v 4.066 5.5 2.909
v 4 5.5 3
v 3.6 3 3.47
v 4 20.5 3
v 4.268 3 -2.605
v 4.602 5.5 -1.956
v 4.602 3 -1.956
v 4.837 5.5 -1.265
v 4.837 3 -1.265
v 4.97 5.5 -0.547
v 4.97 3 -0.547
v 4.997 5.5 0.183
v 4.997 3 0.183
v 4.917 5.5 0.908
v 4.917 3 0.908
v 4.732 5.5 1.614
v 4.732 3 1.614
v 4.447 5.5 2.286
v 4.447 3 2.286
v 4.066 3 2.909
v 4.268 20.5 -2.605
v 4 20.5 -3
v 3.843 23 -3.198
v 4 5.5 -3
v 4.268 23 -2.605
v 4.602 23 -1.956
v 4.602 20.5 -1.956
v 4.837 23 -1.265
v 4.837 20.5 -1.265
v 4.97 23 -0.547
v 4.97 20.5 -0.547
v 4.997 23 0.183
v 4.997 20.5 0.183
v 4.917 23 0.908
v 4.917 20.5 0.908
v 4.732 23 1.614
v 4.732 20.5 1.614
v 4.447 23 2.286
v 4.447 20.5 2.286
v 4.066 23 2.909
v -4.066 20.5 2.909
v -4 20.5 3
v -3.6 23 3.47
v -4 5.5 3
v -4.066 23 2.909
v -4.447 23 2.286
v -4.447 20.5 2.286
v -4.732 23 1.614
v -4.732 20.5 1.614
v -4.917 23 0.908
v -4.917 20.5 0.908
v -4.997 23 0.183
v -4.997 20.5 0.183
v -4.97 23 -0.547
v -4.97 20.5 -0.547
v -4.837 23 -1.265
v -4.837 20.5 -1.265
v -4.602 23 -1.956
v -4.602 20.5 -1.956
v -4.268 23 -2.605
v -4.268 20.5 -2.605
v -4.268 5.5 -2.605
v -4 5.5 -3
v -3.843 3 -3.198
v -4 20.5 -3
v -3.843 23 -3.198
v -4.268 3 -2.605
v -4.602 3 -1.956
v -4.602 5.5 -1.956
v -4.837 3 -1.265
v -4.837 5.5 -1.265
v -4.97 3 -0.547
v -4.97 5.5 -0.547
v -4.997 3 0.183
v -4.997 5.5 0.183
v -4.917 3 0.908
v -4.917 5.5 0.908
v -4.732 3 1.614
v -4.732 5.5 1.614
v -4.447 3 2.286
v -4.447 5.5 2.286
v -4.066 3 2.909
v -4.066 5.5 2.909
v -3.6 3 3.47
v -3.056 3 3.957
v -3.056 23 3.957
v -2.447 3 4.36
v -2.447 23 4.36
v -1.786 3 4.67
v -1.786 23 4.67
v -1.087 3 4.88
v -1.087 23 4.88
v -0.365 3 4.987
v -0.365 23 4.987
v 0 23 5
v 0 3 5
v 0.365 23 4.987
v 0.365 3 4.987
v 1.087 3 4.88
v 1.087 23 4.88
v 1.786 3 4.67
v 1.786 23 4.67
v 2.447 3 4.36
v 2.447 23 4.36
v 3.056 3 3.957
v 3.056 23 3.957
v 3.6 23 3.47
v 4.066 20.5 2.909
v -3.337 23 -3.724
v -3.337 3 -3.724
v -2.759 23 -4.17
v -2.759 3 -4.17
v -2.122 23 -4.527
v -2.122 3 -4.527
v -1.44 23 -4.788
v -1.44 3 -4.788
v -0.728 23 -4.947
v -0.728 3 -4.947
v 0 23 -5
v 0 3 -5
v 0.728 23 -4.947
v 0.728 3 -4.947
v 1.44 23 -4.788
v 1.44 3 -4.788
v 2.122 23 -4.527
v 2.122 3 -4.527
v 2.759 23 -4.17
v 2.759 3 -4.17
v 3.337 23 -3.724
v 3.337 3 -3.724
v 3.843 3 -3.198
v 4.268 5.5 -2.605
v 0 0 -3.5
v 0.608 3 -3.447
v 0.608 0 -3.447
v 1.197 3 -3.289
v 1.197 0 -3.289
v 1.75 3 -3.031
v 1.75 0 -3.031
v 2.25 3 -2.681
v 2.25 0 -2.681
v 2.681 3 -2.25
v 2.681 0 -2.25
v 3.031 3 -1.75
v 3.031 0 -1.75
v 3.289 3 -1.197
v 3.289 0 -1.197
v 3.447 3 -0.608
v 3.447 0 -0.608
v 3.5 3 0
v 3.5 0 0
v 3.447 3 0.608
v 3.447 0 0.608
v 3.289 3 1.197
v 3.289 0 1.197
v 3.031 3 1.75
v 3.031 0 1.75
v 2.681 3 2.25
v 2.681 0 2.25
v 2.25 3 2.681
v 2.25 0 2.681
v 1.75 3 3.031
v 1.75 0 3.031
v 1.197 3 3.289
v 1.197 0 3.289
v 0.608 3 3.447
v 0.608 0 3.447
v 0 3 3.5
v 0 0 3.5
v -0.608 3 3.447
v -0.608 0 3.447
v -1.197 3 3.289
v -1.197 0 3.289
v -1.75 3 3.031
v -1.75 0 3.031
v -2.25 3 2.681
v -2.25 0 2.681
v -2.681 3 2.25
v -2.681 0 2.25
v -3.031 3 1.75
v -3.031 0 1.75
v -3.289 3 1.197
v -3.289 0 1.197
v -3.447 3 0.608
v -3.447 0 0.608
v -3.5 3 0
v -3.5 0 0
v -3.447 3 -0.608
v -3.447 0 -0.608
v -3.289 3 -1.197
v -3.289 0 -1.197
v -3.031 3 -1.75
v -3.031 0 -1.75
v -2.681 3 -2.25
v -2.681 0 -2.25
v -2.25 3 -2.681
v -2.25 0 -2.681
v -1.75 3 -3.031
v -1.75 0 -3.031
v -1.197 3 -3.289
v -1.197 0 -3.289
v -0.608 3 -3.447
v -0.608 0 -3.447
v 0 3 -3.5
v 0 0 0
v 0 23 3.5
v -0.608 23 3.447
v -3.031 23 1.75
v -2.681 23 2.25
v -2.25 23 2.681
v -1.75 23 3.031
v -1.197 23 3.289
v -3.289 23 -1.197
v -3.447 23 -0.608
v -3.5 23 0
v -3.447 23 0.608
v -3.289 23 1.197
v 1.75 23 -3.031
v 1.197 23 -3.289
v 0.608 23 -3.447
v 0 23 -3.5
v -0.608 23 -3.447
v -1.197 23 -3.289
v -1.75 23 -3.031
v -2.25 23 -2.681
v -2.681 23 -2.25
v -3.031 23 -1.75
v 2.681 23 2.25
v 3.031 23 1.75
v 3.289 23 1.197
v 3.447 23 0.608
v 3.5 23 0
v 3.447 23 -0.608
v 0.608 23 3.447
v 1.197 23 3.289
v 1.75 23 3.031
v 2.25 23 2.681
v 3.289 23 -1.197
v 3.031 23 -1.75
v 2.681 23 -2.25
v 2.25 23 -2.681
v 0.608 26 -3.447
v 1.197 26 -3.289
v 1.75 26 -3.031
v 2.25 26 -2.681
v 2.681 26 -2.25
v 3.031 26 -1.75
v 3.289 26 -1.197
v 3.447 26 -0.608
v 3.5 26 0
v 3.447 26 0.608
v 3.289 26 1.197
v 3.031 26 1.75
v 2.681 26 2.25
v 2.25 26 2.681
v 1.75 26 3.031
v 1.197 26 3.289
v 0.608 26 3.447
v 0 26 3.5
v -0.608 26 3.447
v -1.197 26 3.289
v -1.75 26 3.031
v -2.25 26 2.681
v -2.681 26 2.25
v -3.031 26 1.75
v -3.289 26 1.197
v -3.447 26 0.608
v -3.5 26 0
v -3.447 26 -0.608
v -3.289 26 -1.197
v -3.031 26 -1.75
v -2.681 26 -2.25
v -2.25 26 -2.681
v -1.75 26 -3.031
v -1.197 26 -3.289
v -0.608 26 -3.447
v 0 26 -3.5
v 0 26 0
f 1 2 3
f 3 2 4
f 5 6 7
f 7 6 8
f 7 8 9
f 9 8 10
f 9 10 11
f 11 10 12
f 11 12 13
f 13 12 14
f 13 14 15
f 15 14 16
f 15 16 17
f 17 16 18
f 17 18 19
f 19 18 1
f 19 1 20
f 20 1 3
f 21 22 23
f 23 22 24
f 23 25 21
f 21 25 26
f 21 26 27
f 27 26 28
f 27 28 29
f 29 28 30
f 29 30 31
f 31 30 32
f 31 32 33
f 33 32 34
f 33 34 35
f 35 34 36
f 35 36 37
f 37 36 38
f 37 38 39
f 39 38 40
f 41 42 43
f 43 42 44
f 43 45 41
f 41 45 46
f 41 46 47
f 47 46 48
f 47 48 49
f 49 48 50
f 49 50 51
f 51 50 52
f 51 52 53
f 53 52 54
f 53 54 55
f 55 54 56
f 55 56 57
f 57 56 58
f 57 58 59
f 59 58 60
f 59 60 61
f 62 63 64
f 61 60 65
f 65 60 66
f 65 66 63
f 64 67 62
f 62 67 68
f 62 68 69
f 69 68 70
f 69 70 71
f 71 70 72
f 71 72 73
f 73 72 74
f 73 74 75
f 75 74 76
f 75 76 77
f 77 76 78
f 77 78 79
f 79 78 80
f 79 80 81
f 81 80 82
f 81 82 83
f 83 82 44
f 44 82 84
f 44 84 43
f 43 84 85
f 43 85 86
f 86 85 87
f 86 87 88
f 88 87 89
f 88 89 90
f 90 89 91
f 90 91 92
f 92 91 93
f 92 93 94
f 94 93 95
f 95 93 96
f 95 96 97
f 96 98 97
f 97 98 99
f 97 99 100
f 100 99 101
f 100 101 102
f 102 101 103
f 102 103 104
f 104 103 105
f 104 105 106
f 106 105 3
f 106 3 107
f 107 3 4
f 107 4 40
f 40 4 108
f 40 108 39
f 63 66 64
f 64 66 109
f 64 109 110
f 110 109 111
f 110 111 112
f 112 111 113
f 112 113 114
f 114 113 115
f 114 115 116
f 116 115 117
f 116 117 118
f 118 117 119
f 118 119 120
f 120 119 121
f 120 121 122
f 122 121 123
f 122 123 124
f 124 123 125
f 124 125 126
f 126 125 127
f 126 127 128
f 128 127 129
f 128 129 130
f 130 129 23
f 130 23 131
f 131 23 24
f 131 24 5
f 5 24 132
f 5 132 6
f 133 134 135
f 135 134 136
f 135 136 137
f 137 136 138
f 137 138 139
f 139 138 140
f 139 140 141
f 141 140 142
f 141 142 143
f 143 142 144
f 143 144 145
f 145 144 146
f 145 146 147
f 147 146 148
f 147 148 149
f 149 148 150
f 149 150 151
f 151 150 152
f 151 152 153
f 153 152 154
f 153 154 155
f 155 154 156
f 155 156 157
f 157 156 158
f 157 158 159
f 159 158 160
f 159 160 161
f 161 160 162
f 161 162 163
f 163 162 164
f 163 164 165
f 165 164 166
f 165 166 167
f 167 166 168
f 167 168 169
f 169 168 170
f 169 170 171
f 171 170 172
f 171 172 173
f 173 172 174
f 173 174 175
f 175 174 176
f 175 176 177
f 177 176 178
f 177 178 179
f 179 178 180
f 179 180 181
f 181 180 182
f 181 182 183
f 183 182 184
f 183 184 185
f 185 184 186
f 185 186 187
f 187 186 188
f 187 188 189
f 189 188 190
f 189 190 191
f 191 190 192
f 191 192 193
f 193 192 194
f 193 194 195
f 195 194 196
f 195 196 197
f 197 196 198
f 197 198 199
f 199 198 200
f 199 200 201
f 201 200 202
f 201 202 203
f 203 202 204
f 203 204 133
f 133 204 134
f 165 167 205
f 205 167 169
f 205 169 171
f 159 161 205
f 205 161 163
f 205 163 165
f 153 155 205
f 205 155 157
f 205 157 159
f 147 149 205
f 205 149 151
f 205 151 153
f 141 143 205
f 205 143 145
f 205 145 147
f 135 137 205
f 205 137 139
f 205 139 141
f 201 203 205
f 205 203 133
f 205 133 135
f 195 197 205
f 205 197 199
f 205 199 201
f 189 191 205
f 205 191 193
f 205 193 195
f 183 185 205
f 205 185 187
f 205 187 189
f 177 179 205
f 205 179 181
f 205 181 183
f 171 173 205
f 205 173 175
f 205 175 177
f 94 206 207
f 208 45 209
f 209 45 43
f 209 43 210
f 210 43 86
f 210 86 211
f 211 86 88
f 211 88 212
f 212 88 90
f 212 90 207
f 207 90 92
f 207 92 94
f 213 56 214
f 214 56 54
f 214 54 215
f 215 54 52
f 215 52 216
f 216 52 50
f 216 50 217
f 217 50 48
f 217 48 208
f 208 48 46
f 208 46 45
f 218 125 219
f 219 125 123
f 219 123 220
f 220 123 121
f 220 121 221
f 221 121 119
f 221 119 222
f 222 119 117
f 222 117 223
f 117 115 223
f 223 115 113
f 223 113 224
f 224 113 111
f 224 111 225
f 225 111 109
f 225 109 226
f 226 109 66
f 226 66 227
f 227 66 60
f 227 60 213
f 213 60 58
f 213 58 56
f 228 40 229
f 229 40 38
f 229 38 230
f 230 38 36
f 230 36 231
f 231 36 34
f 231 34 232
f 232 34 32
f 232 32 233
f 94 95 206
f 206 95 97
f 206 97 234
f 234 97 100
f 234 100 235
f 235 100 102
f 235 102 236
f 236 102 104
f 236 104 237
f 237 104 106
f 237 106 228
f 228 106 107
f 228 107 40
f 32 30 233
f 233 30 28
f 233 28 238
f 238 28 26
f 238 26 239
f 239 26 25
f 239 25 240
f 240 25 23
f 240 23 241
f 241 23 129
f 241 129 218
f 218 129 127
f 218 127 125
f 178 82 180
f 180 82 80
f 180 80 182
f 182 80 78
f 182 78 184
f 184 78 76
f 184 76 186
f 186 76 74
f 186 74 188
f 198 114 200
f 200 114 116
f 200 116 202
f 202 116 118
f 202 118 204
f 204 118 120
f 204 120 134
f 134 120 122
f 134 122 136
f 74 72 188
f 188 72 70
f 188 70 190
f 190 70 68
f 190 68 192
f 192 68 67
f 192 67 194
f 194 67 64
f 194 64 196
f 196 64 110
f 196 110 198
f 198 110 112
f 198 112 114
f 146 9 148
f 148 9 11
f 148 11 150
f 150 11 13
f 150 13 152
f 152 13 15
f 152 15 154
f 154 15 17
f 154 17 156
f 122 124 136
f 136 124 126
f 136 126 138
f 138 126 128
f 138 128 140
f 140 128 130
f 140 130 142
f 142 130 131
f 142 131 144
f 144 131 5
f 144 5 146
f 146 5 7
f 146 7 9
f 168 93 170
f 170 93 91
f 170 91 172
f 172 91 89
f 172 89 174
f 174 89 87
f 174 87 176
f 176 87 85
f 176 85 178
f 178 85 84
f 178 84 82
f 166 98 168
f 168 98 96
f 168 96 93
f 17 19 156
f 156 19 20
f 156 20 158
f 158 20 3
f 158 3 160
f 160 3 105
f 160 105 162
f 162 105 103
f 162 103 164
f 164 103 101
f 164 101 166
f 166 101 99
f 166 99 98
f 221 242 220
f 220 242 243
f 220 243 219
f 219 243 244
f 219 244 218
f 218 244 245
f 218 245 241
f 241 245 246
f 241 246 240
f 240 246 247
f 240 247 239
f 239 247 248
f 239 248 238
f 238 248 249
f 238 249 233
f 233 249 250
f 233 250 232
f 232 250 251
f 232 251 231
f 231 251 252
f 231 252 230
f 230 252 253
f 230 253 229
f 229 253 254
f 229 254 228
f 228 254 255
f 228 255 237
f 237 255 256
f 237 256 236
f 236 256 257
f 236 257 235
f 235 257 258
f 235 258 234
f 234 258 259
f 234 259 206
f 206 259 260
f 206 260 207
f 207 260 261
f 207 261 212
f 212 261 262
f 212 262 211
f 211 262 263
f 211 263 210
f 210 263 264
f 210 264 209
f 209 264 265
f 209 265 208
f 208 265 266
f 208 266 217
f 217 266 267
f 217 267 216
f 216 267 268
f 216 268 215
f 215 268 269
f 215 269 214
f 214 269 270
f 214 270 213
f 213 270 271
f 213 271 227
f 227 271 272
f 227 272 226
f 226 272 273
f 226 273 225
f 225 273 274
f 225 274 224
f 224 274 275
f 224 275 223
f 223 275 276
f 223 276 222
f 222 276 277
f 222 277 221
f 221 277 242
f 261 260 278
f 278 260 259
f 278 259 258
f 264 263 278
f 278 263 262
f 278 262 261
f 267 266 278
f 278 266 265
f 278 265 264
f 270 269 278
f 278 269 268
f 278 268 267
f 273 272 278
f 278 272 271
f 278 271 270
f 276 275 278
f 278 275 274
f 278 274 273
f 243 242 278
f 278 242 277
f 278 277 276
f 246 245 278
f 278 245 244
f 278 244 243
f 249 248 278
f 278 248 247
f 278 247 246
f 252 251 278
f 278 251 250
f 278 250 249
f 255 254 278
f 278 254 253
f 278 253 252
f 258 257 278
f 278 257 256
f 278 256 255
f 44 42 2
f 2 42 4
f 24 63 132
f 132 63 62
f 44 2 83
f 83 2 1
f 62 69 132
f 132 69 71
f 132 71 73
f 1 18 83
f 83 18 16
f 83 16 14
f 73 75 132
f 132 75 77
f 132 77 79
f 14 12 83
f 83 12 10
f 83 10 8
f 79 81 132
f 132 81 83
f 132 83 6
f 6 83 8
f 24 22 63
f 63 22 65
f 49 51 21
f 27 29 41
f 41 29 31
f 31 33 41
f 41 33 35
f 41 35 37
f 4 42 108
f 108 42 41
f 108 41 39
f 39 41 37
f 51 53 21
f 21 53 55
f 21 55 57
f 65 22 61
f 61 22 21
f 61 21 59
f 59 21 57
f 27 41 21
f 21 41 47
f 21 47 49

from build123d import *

# Parameters (mm, degrees)
CROQUIS1_R                 = 3.5
SALIENTE_EXTRUIR1_DEPTH    = 3
CROQUIS2_R                 = 5
SALIENTE_EXTRUIR2_DEPTH    = 20
CROQUIS3_R                 = 3.5
SALIENTE_EXTRUIR3_DEPTH    = 3
CORTAR_EXTRUIR1_DEPTH      = 10
CORTAR_EXTRUIR1_DEPTH_BACK = 11
CROQUIS4_W                 = 6
CROQUIS4_H                 = 15


with BuildPart() as part:
    # Croquis1 → Saliente-Extruir1 (new body)
    with BuildSketch(Plane(origin=(0, 0, 0), x_dir=(1, 0, 0), z_dir=(0, 1, 0))):
        with Locations(Location((0, 0, 0), (0, 0, 270))):
            Circle(CROQUIS1_R)
    extrude(amount=SALIENTE_EXTRUIR1_DEPTH)

    # Croquis2 → Saliente-Extruir2 (add)
    with BuildSketch(Plane(origin=(0, 3, 0), x_dir=(1, 0, 0), z_dir=(0, 1, 0))):
        with Locations(Location((0, 0, 0), (0, 0, 270))):
            Circle(CROQUIS2_R)
    extrude(amount=SALIENTE_EXTRUIR2_DEPTH)

    # Croquis3 → Saliente-Extruir3 (add)
    with BuildSketch(Plane(origin=(0, 23, 0), x_dir=(1, 0, 0), z_dir=(0, 1, 0))):
        with Locations(Location((0, 0, 0), (0, 0, 270))):
            Circle(CROQUIS3_R)
    extrude(amount=SALIENTE_EXTRUIR3_DEPTH)

    # Croquis4 → Cortar-Extruir1 (cut, two sides: drawn at the far end of the back side and taken through both)
    with BuildSketch(Plane(origin=(0, 0, 0), x_dir=(0, 0, -1), z_dir=(1, 0, 0)).offset(-CORTAR_EXTRUIR1_DEPTH_BACK)):
        with Locations((0, 13)):
            Rectangle(CROQUIS4_W, CROQUIS4_H)
    extrude(amount=CORTAR_EXTRUIR1_DEPTH + CORTAR_EXTRUIR1_DEPTH_BACK, mode=Mode.SUBTRACT)


solid = part.part
